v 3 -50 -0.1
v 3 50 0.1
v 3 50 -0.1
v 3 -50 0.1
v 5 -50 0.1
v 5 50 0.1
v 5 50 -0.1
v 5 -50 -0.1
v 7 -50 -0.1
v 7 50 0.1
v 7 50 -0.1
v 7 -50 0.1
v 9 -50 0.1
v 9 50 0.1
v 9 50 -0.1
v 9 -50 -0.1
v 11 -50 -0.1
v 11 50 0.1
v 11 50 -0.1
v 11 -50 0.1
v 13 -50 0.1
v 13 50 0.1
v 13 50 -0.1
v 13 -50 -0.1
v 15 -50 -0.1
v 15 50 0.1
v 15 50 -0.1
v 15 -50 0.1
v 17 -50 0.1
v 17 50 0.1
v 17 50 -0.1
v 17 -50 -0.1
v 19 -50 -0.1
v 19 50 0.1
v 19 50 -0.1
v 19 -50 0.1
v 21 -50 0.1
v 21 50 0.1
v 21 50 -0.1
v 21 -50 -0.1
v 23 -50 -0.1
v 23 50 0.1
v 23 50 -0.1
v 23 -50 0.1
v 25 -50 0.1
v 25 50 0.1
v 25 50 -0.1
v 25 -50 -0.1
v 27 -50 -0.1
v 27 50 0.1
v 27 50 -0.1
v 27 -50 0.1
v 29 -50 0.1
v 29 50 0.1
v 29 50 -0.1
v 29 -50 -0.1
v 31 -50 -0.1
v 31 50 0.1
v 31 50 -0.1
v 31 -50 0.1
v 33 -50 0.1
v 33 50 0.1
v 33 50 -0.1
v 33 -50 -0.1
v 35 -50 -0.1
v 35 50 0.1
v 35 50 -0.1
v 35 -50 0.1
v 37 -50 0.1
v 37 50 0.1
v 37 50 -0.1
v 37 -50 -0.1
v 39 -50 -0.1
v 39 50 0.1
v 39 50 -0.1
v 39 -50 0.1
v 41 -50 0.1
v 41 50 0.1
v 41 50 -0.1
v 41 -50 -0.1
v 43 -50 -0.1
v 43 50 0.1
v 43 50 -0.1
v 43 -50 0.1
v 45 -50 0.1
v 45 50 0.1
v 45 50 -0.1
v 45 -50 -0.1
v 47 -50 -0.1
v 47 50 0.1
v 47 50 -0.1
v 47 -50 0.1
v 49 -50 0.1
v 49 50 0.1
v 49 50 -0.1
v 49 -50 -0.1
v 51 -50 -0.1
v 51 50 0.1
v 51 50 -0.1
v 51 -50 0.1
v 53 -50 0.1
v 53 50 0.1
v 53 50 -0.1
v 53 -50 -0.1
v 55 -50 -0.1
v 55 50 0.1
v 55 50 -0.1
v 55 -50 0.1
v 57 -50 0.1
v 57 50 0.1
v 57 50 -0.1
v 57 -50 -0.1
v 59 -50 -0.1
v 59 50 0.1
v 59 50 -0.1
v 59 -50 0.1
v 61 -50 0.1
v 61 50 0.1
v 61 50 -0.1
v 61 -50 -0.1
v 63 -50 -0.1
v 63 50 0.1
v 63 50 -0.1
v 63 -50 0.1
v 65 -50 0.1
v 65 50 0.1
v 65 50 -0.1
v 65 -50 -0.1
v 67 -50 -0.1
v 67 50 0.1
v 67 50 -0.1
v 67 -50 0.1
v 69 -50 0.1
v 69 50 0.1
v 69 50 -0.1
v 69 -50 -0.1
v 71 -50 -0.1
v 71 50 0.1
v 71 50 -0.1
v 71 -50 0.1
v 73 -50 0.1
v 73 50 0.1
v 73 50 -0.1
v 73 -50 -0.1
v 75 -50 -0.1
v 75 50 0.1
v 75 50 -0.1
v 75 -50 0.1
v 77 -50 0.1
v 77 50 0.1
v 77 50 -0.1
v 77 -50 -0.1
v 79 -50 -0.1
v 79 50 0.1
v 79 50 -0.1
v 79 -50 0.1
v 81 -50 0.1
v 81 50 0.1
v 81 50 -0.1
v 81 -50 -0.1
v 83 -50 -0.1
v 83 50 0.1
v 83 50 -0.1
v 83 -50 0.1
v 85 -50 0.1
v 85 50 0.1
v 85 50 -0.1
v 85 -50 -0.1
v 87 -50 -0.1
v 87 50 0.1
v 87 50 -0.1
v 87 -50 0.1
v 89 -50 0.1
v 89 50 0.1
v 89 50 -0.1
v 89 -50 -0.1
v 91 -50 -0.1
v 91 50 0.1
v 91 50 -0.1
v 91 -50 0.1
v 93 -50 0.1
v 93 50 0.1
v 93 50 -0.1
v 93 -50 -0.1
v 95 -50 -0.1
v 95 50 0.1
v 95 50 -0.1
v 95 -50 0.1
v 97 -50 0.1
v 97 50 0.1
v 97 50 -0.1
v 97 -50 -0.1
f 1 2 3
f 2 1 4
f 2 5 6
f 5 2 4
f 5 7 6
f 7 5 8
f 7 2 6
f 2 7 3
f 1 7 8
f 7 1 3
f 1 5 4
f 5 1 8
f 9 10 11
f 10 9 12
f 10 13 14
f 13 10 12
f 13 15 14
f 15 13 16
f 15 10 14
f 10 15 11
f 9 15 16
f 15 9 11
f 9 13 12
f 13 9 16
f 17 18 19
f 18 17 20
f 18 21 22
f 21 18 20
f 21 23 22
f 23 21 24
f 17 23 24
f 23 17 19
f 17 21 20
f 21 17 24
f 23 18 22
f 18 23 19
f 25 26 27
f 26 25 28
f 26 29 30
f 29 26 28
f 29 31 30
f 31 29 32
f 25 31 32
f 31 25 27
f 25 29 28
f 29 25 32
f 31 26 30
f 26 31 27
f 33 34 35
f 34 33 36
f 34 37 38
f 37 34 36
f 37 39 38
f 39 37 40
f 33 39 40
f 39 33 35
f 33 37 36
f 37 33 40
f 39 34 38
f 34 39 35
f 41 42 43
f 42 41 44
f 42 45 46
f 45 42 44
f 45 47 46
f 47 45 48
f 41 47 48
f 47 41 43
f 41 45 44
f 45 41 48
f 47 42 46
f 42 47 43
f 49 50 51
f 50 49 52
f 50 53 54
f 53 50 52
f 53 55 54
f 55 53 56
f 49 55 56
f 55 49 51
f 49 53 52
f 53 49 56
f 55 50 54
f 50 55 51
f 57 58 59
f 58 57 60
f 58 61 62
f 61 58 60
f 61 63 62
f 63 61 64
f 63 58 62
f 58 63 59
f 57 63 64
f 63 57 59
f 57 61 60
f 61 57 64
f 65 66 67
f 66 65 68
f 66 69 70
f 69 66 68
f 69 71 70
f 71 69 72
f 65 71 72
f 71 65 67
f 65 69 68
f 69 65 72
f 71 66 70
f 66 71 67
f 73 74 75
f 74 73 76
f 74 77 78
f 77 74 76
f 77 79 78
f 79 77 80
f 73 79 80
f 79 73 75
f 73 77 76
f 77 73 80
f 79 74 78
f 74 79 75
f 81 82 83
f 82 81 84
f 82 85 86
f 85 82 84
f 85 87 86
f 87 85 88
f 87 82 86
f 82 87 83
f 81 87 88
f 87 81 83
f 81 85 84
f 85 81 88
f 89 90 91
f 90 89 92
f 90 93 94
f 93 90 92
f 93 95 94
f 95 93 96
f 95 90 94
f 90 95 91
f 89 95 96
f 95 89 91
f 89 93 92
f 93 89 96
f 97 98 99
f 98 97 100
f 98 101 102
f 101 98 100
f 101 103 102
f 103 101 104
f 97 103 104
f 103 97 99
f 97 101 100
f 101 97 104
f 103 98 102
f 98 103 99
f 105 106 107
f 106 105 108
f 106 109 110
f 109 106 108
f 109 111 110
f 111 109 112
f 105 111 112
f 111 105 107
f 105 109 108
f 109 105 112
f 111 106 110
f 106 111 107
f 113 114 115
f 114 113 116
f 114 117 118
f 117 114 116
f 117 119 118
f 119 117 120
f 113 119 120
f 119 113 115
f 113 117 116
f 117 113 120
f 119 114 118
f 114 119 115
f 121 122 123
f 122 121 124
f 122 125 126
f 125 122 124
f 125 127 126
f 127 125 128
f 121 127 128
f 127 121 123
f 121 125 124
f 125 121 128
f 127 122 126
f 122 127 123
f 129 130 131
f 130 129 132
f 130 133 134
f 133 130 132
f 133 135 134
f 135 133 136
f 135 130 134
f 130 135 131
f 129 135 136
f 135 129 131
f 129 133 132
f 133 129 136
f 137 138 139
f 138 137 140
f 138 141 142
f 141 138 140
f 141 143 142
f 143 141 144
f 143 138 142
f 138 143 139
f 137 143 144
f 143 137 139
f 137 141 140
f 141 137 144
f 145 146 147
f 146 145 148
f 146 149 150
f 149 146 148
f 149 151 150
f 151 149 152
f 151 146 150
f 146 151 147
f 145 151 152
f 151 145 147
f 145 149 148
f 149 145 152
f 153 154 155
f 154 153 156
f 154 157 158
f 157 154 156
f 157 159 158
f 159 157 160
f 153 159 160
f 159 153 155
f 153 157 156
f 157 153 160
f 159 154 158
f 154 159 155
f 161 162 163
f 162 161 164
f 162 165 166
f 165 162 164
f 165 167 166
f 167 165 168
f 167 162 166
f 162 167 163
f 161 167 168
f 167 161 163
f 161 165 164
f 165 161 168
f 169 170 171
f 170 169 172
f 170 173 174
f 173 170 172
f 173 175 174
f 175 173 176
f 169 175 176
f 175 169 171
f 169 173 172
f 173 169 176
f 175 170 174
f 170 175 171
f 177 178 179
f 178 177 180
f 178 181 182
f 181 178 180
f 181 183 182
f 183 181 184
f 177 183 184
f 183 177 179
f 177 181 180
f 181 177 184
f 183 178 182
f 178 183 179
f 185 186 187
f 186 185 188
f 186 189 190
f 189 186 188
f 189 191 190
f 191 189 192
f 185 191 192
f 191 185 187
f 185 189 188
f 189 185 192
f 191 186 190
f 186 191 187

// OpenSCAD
width = 2;
height = 100;
gap = 2;
thick = 0.2;
nbr = 24;

for(i = [1:1:nbr]){
    translate([i*(width+gap),0,0]) cube([width,height,thick],center=true);
}
